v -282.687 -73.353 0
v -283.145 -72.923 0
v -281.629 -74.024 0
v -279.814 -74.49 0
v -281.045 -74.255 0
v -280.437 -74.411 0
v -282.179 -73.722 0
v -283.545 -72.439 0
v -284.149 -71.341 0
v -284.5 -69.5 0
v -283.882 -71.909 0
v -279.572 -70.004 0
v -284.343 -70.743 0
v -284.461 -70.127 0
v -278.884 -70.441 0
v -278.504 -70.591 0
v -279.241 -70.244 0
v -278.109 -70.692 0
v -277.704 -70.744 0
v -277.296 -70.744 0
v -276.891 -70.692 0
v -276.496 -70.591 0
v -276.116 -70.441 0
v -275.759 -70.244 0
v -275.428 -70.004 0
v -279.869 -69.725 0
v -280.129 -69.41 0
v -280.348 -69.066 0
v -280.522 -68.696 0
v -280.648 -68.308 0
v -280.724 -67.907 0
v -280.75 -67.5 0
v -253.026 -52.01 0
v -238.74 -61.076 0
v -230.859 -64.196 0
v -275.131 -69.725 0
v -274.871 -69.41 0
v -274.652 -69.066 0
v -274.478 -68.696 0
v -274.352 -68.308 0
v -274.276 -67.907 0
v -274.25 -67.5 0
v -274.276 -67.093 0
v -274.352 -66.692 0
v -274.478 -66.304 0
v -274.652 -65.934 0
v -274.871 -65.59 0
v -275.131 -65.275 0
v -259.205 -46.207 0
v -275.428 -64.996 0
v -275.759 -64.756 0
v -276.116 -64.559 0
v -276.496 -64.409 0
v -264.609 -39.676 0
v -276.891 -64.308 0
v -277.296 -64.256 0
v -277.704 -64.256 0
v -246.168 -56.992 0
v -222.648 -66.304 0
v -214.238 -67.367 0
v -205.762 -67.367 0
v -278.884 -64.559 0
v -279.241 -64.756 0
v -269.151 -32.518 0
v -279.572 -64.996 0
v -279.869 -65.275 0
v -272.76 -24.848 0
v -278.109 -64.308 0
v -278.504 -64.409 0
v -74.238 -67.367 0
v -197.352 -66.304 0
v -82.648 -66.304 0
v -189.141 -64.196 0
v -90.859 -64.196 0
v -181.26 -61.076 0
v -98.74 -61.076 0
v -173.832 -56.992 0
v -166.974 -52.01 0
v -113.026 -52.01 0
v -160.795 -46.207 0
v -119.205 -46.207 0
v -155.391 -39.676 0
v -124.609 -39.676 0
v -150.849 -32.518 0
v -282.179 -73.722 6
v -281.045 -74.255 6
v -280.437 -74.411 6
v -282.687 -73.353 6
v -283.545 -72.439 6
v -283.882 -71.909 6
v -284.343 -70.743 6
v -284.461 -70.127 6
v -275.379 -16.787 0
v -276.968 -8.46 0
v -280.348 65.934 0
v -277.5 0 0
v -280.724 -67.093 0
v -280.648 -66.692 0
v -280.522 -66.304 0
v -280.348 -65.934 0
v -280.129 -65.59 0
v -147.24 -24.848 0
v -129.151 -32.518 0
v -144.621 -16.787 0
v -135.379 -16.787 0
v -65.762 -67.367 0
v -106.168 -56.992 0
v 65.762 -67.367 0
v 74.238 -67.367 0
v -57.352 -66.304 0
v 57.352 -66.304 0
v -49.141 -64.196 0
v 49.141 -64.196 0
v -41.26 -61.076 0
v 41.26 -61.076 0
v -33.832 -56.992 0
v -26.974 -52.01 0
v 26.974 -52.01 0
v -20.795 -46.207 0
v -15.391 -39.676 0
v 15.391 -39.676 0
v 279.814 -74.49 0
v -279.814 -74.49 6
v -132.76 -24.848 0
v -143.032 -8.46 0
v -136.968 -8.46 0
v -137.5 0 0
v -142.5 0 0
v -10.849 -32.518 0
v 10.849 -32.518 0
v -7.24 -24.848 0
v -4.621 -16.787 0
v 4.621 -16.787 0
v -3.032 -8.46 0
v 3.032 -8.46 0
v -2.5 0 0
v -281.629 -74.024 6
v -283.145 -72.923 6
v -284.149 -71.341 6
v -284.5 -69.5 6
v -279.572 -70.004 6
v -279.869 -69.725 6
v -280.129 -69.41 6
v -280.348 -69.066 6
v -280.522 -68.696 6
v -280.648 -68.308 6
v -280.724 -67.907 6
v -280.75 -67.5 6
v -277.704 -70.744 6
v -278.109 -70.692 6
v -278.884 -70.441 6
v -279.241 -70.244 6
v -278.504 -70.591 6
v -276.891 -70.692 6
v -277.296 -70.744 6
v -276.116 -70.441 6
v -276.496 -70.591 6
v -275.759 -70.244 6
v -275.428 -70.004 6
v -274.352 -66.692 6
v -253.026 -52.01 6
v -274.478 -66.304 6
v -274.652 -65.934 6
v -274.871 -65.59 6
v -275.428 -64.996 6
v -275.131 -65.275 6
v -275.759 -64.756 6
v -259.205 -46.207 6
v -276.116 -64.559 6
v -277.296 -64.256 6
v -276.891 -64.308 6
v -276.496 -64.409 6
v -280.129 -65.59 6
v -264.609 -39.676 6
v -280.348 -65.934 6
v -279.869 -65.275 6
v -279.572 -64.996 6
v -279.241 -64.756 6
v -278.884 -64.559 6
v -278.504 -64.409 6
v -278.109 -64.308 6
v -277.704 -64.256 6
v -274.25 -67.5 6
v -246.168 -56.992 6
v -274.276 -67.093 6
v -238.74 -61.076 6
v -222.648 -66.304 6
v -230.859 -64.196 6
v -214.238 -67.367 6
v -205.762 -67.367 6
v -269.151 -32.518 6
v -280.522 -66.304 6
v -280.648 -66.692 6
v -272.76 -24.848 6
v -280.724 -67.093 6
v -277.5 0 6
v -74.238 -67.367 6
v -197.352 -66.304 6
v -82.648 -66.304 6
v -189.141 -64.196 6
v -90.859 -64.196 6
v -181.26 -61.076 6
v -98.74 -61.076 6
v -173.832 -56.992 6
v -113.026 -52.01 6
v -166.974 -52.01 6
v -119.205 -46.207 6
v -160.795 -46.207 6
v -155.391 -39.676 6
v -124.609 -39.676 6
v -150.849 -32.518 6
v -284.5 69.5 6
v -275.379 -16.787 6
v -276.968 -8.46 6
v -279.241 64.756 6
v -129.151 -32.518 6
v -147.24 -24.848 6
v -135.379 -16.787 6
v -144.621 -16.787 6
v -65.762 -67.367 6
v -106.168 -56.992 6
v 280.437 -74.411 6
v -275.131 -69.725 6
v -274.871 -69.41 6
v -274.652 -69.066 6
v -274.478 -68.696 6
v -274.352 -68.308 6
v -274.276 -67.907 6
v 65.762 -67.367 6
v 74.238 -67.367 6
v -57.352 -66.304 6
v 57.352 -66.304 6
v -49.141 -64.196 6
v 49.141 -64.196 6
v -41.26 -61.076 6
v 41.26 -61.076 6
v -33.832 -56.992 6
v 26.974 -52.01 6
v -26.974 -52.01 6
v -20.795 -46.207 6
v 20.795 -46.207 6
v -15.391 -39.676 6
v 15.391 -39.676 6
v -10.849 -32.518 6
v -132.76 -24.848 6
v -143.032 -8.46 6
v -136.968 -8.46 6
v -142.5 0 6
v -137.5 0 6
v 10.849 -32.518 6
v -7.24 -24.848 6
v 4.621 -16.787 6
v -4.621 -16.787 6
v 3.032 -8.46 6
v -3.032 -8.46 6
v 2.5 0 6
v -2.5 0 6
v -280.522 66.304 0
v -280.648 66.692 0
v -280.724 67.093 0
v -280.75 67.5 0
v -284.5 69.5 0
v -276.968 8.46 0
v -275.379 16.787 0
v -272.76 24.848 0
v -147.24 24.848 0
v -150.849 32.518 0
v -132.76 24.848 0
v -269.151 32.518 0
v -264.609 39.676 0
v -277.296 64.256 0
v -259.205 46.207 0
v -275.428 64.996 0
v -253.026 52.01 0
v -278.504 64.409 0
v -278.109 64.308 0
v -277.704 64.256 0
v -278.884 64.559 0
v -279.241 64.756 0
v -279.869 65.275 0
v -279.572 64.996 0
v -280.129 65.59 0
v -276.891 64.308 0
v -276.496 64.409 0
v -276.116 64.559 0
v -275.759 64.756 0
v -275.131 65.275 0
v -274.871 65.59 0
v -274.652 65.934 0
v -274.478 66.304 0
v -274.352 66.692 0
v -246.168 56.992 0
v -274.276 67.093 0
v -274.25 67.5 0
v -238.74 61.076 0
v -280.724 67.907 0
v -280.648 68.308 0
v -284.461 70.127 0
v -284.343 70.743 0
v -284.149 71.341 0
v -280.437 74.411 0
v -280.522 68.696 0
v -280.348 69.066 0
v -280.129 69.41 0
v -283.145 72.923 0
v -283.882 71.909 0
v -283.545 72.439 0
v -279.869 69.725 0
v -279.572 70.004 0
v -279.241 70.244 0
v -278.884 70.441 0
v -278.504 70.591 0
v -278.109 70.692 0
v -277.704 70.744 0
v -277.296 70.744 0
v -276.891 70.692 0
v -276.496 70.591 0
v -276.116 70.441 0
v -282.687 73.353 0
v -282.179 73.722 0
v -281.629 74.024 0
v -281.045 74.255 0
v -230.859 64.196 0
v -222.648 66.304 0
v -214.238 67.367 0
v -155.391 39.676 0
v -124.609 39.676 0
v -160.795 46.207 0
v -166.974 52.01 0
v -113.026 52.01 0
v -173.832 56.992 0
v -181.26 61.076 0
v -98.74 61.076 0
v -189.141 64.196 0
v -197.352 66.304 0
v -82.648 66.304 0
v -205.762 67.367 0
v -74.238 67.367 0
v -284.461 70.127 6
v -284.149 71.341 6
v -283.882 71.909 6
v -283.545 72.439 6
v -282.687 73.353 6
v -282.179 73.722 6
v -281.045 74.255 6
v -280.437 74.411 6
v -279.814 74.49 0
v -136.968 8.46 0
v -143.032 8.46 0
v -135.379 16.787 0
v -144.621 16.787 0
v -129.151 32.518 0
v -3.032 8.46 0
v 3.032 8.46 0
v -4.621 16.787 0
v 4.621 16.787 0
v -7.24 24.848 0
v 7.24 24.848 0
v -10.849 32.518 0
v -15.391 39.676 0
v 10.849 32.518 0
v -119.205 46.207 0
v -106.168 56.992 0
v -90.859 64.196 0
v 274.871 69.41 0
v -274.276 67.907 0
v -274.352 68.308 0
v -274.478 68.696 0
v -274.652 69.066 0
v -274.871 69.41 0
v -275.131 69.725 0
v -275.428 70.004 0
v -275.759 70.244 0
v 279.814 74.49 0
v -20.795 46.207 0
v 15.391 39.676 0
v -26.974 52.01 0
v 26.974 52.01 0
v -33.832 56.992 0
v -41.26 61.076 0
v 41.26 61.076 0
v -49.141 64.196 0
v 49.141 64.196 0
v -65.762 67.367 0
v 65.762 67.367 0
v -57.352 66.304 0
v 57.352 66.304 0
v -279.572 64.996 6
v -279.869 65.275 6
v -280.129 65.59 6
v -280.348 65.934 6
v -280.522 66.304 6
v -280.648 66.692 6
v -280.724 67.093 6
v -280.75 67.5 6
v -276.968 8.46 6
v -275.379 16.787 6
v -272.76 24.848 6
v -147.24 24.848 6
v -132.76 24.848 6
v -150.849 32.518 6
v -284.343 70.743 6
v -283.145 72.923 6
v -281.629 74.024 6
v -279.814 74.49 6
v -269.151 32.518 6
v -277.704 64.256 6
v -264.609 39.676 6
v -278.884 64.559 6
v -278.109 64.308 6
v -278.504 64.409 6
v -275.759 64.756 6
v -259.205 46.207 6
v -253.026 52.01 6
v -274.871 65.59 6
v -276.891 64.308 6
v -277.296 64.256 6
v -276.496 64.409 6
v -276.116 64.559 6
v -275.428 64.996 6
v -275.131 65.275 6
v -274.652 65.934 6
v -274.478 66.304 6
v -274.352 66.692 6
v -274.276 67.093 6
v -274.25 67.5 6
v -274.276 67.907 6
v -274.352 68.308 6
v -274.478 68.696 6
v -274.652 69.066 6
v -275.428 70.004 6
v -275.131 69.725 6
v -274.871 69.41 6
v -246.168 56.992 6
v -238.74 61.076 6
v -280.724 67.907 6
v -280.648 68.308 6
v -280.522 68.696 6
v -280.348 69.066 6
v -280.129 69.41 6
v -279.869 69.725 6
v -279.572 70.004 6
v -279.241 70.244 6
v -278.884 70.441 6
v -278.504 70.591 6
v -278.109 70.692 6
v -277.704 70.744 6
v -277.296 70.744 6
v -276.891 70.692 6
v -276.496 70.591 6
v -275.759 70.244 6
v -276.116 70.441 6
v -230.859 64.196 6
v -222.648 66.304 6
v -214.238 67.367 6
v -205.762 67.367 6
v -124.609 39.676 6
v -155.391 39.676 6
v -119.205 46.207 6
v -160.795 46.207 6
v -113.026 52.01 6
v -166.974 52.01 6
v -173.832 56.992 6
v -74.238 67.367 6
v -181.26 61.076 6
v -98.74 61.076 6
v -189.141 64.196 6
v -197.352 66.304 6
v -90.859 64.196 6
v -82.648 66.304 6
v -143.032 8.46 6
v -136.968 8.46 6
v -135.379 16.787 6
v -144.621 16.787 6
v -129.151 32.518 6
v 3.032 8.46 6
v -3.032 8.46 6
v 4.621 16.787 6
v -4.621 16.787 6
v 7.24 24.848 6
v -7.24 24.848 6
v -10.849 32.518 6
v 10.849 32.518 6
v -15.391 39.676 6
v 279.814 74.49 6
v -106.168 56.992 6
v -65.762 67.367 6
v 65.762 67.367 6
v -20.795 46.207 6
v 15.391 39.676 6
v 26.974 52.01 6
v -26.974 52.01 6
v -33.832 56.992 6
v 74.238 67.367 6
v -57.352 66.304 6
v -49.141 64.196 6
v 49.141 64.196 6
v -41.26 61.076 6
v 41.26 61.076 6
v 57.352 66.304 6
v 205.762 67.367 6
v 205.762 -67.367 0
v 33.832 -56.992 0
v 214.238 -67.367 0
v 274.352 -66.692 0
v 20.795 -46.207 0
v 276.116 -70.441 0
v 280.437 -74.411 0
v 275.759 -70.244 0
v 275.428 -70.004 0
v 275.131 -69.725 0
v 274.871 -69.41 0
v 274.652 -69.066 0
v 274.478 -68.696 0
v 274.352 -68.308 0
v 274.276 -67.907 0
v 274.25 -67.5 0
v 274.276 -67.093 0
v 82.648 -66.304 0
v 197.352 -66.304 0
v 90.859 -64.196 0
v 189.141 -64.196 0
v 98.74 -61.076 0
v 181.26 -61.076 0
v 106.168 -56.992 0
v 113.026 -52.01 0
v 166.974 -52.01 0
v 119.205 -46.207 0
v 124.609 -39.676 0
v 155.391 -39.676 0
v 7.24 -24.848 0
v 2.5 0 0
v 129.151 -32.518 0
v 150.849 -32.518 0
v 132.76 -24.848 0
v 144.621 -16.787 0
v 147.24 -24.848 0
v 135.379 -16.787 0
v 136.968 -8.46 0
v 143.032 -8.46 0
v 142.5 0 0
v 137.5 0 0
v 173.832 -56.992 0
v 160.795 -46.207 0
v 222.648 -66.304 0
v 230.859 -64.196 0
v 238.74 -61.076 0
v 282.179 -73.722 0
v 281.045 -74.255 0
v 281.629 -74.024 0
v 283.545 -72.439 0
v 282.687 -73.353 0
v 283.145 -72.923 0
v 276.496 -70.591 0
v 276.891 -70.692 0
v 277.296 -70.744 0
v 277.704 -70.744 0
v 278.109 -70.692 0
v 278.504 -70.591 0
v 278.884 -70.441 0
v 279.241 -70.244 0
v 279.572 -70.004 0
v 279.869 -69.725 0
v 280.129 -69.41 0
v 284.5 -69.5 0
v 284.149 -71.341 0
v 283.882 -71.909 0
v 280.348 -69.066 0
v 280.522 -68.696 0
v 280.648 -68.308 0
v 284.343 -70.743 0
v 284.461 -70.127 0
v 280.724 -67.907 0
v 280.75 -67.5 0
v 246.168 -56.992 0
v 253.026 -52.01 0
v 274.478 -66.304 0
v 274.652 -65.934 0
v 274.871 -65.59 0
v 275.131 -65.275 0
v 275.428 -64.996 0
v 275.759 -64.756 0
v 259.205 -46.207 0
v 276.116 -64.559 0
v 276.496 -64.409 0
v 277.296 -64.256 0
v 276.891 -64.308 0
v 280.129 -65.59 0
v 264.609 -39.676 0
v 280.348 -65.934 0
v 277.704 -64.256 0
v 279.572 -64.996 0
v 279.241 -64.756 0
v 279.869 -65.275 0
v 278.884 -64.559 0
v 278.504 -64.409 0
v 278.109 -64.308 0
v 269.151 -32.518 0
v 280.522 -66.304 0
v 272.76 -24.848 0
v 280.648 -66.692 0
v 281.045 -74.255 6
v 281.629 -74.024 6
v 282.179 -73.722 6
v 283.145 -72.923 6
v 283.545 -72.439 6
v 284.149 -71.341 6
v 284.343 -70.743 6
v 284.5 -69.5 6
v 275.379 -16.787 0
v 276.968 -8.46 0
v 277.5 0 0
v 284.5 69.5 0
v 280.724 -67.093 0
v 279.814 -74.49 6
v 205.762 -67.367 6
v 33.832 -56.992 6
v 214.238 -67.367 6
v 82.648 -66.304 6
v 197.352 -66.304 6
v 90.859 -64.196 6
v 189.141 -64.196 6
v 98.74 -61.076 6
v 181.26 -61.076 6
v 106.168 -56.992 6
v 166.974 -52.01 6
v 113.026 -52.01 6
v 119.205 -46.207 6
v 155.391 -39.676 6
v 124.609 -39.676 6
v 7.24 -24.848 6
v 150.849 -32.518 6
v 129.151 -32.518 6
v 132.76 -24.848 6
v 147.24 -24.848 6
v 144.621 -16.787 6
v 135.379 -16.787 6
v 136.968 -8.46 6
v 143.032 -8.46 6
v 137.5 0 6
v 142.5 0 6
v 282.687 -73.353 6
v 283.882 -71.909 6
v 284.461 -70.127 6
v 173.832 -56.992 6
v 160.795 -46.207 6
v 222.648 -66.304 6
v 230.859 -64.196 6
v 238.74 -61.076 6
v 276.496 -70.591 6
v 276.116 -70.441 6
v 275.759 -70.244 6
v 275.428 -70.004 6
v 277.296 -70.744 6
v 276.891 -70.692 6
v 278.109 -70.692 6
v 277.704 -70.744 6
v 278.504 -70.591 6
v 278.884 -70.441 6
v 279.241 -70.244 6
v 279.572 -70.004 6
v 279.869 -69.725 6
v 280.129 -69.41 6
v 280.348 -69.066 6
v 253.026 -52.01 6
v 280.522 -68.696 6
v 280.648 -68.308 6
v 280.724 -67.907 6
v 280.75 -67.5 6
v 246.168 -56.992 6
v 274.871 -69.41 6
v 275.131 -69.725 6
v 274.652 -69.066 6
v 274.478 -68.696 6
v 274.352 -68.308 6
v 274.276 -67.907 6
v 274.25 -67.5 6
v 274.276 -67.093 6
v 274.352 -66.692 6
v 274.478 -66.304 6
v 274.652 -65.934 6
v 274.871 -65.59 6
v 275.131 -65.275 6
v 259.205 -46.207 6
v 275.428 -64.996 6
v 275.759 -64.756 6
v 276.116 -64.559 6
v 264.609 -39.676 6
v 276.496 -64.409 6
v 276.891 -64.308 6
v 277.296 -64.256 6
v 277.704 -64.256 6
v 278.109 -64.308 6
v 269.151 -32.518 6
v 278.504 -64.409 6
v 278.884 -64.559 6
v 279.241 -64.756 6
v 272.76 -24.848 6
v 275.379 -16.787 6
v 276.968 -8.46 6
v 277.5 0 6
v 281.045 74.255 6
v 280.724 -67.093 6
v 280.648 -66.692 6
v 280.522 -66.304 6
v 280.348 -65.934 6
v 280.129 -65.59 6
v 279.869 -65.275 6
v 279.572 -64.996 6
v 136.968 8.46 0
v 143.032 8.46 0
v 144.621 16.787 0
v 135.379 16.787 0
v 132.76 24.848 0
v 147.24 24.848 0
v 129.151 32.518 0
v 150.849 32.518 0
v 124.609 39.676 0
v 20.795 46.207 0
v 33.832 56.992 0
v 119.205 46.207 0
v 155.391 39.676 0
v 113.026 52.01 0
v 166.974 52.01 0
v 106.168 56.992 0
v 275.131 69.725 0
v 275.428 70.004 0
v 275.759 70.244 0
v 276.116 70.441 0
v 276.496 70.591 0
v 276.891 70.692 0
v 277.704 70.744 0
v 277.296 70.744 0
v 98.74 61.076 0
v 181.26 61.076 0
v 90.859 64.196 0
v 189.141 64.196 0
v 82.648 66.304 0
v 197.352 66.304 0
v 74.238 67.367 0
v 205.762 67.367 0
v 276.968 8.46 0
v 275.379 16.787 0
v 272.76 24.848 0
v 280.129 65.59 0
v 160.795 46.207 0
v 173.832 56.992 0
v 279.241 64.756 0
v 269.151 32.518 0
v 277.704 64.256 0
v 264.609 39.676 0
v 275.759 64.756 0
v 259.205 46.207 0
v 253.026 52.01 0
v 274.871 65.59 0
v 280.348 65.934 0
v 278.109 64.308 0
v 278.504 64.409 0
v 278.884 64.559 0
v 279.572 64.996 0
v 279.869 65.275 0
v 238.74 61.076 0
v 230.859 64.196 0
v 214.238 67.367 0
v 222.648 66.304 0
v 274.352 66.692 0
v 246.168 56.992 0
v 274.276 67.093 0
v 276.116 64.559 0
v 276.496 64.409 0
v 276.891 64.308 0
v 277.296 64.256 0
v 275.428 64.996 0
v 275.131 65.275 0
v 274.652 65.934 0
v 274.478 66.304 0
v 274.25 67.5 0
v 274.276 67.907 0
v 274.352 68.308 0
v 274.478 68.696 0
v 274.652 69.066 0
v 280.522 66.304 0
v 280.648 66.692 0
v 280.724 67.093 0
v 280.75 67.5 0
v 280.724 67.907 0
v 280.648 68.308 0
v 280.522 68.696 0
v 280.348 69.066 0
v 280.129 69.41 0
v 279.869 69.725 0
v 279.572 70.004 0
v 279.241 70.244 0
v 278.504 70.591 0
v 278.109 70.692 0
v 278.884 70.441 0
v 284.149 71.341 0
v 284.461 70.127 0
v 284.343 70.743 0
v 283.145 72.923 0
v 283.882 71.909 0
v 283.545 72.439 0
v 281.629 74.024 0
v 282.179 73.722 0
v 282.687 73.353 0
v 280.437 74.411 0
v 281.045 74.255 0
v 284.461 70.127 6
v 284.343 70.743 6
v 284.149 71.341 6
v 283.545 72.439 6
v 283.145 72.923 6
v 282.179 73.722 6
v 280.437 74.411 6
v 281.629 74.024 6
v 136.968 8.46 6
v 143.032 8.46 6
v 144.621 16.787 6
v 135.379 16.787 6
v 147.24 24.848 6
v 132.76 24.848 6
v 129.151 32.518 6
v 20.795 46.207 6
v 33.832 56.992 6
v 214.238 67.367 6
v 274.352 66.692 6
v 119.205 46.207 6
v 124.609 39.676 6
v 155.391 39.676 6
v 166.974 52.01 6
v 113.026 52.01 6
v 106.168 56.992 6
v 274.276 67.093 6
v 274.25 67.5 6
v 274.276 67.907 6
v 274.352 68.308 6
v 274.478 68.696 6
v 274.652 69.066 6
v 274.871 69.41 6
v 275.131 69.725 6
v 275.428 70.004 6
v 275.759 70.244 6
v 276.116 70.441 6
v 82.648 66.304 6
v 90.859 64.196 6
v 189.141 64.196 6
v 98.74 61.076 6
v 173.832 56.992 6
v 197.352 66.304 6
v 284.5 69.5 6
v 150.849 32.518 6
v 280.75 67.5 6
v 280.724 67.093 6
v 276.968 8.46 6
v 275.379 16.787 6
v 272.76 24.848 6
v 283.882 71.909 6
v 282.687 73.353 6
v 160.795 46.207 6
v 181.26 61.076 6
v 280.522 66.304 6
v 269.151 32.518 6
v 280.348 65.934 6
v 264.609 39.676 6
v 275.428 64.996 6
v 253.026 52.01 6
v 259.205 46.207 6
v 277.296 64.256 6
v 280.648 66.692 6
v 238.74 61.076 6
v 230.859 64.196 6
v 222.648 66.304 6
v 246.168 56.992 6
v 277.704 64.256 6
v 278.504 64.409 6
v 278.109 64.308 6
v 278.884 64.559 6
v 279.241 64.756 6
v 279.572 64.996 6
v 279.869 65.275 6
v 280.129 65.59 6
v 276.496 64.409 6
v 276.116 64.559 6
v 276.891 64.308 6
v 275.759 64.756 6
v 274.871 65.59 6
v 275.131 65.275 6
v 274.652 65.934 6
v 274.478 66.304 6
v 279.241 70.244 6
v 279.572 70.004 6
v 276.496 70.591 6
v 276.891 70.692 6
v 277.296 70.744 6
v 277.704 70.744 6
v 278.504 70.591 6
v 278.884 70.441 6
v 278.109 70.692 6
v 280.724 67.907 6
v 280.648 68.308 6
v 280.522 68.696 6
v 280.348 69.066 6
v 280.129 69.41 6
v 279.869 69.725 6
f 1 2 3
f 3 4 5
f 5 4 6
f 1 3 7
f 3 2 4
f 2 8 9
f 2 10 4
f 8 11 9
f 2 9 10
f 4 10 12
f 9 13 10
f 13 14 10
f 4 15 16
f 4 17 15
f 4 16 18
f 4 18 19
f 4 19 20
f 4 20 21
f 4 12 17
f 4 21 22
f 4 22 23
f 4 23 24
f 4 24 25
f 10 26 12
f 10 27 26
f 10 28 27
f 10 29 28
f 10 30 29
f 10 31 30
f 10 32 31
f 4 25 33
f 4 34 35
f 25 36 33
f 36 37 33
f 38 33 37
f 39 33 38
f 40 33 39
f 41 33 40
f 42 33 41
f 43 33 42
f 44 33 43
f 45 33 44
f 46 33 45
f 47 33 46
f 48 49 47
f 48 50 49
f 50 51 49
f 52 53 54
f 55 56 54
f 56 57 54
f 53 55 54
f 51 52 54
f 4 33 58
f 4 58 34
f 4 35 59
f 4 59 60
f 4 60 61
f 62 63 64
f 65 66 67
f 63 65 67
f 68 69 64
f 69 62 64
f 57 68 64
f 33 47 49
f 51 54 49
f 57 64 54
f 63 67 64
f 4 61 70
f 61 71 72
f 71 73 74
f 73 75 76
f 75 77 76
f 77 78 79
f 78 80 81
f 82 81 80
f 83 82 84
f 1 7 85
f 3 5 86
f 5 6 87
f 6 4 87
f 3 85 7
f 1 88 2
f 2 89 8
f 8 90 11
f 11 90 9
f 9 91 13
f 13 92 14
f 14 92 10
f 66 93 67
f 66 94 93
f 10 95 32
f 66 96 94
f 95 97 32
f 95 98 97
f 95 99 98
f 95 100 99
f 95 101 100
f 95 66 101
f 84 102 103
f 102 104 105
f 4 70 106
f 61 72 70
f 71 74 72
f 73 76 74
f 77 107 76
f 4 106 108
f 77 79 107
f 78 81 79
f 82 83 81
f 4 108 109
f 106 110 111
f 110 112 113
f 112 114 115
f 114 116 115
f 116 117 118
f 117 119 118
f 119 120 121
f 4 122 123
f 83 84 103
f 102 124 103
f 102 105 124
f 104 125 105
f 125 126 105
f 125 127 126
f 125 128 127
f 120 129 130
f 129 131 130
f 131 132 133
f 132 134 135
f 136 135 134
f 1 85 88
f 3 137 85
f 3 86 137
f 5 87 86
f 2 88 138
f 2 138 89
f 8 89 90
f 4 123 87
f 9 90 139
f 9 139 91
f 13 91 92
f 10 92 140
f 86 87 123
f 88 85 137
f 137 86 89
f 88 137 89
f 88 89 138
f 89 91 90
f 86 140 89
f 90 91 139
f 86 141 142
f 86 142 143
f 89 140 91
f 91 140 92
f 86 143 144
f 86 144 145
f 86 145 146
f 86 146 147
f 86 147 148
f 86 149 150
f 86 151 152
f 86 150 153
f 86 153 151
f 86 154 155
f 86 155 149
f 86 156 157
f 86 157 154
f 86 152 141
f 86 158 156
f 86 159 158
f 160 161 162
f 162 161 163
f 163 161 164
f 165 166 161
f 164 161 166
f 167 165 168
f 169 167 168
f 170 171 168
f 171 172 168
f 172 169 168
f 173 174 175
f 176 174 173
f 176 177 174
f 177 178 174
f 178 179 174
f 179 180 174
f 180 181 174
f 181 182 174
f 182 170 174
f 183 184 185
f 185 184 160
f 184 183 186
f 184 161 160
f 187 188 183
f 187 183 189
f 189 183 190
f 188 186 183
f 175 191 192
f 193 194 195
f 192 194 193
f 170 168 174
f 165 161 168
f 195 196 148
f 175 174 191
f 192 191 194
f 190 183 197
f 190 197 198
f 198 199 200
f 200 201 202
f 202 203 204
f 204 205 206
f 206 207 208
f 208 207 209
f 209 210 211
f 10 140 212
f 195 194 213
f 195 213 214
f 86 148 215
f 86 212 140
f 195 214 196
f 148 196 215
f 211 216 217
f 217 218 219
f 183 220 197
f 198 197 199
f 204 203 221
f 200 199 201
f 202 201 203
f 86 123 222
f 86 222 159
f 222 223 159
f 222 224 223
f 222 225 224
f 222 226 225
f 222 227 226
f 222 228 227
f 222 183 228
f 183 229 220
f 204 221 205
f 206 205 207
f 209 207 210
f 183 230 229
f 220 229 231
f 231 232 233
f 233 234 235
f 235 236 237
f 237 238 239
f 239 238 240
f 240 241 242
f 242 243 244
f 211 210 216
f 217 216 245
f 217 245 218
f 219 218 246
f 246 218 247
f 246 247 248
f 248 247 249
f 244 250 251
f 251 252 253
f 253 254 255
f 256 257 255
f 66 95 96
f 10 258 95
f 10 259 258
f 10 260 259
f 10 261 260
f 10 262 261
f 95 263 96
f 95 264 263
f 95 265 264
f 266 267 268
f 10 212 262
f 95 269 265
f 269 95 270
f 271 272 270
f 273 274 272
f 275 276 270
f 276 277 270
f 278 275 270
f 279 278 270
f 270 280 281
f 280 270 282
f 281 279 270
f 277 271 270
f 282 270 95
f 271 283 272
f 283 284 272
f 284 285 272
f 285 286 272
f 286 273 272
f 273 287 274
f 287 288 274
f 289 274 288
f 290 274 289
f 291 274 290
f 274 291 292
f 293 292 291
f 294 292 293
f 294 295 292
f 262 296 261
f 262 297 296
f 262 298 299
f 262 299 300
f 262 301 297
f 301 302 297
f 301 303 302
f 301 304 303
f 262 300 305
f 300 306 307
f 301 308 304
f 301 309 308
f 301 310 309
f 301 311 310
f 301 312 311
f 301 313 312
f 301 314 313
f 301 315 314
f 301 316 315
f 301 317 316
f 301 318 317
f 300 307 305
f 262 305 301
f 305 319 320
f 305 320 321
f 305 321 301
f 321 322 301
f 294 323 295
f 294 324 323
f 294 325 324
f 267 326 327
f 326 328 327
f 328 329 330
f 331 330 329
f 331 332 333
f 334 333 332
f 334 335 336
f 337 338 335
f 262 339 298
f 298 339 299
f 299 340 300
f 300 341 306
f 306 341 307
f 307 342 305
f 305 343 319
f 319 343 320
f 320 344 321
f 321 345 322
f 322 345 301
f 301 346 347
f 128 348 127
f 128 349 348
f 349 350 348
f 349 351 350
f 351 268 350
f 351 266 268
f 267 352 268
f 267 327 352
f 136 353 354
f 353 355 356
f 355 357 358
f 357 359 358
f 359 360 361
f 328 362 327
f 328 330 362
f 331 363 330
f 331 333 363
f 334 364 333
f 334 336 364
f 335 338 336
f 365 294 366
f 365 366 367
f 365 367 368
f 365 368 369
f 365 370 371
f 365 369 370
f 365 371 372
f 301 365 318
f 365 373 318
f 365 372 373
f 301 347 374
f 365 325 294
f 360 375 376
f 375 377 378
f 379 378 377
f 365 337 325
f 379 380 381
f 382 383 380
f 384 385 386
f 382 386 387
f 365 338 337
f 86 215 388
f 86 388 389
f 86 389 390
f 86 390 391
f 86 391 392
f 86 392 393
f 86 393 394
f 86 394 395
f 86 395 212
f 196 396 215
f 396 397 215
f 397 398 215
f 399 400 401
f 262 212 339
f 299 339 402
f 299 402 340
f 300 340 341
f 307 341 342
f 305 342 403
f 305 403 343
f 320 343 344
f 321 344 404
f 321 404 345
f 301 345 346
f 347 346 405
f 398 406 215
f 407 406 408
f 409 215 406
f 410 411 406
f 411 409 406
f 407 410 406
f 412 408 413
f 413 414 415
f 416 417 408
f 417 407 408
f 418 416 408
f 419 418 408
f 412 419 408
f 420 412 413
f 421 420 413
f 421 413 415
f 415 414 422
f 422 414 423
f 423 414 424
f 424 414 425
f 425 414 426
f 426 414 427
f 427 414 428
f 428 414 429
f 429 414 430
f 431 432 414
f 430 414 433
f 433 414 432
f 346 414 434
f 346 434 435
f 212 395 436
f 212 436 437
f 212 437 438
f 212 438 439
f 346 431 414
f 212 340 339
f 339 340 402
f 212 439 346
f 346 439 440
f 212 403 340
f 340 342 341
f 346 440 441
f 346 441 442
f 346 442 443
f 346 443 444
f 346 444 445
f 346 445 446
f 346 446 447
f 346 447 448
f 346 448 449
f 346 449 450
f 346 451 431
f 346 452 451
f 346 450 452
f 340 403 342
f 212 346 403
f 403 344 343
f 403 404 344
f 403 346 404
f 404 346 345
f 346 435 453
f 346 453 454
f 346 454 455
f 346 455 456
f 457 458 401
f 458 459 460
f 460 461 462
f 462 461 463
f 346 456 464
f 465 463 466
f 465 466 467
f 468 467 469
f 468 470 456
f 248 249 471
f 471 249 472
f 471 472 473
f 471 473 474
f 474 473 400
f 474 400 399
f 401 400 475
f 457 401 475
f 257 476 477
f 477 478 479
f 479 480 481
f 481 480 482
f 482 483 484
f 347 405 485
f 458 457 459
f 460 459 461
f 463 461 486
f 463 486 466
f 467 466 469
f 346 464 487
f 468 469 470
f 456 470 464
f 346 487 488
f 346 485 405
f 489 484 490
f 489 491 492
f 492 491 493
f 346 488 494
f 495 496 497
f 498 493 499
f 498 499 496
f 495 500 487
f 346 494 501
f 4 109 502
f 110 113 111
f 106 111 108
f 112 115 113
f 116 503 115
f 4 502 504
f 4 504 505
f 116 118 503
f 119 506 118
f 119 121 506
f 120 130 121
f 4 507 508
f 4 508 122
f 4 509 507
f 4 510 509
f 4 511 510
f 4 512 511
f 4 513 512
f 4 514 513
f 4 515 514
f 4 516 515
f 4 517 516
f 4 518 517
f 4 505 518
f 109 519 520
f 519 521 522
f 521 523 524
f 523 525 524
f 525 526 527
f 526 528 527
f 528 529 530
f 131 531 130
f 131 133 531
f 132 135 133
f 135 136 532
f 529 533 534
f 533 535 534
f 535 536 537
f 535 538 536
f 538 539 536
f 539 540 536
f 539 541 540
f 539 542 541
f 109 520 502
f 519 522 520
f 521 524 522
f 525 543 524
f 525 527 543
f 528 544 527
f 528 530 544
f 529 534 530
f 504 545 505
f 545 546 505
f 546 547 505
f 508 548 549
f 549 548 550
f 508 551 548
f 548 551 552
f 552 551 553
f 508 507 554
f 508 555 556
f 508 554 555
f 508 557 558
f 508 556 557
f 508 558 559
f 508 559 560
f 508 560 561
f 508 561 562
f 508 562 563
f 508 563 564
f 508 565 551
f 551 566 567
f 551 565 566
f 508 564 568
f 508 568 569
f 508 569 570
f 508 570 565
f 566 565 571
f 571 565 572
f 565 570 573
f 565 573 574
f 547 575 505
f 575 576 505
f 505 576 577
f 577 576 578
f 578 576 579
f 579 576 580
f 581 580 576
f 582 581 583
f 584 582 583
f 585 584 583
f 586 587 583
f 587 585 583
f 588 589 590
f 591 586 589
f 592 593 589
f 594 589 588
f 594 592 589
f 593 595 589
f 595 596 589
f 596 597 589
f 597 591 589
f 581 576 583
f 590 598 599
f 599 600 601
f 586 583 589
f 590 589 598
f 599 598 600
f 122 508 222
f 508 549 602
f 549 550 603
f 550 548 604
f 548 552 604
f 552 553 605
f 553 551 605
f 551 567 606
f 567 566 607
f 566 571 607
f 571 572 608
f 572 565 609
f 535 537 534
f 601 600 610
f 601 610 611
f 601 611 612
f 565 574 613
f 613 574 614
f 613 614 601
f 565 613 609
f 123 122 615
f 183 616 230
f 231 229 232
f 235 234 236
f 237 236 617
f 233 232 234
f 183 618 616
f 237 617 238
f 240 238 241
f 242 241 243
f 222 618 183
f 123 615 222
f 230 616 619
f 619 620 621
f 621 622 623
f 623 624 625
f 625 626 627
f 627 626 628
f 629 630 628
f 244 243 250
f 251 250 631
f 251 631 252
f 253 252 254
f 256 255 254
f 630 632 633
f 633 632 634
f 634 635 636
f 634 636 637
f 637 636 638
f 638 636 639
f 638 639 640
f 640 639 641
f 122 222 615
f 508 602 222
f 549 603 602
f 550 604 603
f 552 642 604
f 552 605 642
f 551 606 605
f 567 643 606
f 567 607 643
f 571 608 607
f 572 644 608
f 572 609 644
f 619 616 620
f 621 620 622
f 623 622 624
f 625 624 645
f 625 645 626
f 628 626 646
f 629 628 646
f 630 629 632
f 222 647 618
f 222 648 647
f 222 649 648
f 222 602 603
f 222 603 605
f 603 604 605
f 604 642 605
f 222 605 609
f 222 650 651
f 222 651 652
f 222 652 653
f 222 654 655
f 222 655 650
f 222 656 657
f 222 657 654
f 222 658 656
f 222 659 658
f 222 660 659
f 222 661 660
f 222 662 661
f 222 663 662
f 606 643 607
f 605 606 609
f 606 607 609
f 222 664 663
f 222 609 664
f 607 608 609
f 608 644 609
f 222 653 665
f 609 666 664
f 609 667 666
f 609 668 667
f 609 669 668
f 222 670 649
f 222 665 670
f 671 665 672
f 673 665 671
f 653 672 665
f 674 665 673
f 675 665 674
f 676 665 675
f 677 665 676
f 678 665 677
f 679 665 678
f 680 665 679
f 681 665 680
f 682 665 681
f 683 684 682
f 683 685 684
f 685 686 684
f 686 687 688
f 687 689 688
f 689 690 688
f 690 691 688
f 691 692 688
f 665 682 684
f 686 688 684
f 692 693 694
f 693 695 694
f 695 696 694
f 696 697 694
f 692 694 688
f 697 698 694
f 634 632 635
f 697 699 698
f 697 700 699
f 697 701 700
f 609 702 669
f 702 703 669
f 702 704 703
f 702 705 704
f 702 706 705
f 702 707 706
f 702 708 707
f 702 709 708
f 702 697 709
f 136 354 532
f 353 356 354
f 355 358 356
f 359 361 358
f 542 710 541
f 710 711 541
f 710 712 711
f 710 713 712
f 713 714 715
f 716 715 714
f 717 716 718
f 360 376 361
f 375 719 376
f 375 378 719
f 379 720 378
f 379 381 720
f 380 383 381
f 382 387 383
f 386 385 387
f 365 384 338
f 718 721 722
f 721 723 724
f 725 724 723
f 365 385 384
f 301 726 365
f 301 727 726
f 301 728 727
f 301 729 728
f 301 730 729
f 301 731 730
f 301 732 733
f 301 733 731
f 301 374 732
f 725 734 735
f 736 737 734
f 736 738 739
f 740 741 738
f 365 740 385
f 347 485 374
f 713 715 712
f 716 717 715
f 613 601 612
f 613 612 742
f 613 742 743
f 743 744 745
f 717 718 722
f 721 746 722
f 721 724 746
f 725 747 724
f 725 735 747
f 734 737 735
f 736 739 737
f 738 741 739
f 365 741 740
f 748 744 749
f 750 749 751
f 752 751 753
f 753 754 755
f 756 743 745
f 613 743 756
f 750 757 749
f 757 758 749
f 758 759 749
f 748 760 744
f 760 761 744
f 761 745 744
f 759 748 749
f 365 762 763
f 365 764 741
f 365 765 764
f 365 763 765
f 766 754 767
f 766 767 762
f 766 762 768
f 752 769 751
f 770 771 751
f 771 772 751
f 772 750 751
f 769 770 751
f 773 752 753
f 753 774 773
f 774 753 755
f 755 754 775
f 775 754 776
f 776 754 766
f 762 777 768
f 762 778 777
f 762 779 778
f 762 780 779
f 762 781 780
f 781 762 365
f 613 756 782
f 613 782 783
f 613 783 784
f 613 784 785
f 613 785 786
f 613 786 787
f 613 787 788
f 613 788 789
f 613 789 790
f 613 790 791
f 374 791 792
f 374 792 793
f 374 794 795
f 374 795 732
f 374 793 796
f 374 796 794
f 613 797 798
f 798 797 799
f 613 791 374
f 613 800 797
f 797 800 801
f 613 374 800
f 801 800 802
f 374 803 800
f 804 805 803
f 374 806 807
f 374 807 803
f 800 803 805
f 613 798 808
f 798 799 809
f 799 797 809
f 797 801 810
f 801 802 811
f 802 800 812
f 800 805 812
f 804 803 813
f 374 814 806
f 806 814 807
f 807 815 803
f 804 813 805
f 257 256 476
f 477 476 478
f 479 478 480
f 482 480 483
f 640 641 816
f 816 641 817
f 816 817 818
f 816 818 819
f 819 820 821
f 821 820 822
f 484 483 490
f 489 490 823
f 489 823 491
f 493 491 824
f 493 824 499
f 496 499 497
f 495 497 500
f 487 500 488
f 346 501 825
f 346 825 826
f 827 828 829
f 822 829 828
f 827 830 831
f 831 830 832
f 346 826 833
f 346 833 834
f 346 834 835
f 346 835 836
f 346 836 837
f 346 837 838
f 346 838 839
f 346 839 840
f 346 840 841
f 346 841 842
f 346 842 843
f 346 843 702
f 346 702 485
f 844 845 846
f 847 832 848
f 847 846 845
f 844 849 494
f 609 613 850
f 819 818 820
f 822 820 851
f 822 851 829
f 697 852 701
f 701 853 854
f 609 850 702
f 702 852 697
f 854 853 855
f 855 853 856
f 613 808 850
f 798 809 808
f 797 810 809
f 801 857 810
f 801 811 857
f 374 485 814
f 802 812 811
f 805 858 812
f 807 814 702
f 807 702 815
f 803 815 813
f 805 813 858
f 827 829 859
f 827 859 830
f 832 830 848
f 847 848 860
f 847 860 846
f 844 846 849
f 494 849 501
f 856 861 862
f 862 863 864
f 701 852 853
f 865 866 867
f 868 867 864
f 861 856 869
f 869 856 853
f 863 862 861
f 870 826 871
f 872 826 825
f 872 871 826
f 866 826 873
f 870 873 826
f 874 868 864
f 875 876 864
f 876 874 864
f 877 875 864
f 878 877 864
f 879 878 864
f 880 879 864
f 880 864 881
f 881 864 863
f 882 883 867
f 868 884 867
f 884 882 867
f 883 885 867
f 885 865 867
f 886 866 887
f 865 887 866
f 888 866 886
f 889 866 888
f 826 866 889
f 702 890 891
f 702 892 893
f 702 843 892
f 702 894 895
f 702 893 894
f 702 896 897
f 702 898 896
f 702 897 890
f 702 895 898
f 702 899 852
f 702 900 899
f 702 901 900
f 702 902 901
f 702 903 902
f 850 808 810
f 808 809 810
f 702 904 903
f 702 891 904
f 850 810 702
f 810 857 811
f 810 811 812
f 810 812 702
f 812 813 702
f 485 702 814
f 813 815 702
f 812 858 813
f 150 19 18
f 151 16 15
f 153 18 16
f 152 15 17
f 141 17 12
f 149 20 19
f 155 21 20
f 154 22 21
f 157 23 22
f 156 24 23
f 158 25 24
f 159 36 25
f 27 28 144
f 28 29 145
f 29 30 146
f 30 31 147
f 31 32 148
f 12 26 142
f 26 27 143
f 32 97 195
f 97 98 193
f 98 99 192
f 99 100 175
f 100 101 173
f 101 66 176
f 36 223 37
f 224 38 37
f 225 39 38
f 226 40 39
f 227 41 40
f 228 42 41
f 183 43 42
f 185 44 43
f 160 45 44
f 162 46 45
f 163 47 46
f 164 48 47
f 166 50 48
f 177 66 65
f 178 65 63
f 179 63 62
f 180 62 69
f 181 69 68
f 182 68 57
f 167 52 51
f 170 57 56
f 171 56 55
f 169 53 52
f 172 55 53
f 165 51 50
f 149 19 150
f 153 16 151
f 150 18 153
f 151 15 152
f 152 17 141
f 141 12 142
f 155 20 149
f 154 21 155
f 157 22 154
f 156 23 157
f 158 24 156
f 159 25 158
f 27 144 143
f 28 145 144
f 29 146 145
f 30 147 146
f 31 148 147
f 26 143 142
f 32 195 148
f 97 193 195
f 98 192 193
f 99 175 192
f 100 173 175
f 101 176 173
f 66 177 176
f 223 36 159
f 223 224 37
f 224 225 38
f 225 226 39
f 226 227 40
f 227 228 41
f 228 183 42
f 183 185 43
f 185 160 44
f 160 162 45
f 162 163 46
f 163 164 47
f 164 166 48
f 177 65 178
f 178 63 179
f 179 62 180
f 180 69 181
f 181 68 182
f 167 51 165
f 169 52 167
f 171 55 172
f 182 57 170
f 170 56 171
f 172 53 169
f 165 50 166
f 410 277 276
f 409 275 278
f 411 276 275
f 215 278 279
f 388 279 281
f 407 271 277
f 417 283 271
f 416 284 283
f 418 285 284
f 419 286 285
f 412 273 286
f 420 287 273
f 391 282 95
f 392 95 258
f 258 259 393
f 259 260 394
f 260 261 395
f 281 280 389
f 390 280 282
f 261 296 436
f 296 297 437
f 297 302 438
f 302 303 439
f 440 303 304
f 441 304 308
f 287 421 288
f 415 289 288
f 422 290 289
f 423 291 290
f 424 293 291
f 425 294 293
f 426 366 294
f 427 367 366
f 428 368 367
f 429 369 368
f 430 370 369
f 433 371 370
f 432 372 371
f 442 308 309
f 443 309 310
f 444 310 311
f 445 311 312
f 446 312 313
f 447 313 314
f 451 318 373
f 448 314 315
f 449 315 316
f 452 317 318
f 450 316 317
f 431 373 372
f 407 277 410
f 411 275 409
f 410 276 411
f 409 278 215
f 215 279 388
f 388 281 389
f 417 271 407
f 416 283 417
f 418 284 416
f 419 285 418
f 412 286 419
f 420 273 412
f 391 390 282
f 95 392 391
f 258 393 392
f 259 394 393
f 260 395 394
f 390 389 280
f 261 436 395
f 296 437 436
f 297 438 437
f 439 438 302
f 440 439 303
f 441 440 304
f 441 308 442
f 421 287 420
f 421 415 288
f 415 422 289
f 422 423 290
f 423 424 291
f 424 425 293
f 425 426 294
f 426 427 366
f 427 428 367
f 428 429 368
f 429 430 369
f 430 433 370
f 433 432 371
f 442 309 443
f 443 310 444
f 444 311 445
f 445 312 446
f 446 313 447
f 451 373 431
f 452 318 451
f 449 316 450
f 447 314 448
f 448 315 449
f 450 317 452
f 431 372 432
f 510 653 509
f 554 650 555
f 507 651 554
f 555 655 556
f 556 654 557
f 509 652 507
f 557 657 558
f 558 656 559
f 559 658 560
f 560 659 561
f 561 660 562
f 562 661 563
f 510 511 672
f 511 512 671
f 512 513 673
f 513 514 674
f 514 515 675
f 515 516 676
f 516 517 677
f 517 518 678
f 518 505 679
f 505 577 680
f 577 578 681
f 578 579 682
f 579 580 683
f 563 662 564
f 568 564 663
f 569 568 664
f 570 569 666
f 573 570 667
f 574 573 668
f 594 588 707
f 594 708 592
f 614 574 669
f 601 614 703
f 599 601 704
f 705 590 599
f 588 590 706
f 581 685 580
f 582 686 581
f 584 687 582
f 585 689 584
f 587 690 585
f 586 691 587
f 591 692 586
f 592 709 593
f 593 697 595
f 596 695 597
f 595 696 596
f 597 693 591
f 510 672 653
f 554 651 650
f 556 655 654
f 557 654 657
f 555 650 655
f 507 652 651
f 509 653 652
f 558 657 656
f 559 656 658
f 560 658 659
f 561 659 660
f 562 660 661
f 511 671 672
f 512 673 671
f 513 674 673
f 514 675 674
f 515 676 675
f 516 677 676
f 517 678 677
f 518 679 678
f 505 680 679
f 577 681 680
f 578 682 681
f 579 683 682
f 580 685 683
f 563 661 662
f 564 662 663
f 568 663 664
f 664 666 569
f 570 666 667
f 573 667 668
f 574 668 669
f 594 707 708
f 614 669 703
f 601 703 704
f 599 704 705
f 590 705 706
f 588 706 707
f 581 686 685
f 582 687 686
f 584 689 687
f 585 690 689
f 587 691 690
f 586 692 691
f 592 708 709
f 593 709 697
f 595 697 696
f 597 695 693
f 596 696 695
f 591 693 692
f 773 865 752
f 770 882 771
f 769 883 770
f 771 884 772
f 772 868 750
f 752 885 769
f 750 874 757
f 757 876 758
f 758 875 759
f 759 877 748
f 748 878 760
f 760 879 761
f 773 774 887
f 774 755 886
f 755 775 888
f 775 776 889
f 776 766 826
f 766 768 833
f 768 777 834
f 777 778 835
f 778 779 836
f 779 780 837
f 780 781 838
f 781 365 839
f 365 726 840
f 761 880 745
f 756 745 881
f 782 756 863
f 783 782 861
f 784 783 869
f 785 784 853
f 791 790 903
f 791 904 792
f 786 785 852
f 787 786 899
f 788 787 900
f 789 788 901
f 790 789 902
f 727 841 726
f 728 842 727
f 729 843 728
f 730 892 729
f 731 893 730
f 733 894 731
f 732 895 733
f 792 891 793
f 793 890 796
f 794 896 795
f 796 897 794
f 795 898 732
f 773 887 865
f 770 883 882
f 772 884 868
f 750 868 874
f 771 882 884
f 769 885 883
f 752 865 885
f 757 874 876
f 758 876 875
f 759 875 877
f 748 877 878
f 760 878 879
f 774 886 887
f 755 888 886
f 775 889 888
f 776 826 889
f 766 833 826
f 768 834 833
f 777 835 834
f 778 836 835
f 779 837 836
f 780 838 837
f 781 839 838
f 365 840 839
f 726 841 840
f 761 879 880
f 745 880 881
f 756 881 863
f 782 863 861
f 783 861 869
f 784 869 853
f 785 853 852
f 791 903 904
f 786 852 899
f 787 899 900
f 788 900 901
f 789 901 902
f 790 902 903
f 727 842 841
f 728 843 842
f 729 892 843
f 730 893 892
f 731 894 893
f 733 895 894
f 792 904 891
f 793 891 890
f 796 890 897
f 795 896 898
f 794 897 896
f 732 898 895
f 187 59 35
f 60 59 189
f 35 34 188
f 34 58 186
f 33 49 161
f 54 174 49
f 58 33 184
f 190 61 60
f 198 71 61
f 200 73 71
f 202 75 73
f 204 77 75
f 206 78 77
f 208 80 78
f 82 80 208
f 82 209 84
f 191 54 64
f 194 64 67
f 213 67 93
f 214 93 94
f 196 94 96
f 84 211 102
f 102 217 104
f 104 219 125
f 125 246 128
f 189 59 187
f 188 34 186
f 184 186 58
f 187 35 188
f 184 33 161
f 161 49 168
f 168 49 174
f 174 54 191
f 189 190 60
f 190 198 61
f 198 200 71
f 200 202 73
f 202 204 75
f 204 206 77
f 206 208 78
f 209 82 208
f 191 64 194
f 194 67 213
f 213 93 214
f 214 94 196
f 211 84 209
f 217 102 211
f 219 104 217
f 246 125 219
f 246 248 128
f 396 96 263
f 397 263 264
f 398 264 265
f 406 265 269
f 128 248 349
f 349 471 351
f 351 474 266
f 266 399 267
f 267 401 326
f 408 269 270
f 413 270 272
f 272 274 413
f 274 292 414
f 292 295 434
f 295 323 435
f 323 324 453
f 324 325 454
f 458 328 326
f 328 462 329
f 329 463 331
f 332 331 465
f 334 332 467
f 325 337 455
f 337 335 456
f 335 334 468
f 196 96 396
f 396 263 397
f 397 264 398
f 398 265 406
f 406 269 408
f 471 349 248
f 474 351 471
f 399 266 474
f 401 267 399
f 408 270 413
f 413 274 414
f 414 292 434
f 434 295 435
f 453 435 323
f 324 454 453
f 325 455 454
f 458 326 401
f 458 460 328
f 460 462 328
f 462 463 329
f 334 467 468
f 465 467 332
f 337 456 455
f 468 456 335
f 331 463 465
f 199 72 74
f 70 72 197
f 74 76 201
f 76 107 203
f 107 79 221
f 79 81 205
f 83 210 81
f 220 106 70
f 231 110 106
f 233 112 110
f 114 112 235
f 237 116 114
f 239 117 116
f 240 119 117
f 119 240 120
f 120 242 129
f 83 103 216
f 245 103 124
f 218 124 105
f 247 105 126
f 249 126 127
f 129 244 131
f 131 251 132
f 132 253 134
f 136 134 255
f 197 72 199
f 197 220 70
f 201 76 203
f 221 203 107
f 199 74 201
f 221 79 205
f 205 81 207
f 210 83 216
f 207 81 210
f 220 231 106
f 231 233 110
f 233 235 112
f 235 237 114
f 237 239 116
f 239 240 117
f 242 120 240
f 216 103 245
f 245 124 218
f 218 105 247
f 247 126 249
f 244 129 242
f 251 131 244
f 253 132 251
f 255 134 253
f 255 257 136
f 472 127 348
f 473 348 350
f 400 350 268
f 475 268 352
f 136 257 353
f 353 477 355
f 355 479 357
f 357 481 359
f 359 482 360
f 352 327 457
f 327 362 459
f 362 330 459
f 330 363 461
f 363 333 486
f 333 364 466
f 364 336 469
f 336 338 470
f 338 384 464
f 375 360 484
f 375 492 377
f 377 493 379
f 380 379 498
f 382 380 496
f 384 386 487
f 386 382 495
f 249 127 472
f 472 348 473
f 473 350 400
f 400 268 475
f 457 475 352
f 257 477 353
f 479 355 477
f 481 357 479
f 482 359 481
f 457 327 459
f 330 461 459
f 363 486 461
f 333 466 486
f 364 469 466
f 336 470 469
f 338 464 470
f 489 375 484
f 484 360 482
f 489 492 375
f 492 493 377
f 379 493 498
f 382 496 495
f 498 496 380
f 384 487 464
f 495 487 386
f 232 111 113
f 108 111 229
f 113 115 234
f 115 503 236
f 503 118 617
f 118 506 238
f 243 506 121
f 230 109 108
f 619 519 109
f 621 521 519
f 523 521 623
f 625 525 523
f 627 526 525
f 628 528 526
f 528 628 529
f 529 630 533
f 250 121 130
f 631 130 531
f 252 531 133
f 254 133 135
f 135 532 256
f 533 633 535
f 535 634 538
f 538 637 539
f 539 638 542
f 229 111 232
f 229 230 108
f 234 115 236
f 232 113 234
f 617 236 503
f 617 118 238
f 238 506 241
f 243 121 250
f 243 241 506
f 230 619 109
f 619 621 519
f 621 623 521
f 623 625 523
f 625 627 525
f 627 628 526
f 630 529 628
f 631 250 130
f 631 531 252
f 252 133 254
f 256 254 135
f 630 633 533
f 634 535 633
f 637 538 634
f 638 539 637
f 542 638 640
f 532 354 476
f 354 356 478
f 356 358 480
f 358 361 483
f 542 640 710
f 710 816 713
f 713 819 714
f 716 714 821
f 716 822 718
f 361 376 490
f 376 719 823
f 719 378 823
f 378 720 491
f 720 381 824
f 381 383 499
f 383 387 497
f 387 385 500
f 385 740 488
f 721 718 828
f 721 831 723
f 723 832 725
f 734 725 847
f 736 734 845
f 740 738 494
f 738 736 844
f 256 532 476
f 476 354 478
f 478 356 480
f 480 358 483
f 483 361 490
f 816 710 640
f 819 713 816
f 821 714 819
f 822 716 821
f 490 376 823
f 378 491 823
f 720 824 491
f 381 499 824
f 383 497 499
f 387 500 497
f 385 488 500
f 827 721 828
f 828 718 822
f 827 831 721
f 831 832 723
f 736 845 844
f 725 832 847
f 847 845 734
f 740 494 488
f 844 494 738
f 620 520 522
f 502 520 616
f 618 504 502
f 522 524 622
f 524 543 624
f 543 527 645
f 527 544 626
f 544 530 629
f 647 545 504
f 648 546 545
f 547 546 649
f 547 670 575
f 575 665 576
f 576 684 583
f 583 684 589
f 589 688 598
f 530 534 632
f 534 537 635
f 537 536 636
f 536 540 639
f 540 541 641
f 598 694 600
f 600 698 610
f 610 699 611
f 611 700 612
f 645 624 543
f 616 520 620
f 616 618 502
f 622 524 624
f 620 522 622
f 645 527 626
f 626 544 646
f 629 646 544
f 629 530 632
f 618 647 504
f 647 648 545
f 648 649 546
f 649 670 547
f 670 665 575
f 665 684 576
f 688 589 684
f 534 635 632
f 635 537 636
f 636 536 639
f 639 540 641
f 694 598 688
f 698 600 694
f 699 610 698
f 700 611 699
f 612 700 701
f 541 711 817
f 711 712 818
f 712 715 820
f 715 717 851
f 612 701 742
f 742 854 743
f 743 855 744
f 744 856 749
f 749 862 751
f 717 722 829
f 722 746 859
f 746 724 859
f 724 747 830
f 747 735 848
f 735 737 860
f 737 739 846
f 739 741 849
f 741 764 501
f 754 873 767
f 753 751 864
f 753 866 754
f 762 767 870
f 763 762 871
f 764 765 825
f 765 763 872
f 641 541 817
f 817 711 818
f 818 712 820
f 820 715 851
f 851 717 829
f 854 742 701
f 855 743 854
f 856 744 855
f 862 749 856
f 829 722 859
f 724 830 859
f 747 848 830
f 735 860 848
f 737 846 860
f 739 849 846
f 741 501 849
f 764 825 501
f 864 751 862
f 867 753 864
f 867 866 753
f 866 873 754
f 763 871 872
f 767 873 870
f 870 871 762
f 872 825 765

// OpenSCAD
$fn = 50;

difference() {
	union() {
		hull() {
			translate(v = [-279.5, 69.5, 0]) {
				cylinder(h = 6, r = 5);
			}
			translate(v = [279.5, 69.5, 0]) {
				cylinder(h = 6, r = 5);
			}
			translate(v = [-279.5, -69.5, 0]) {
				cylinder(h = 6, r = 5);
			}
			translate(v = [279.5, -69.5, 0]) {
				cylinder(h = 6, r = 5);
			}
		}
	}
	union() {
		translate(v = [-277.5, -67.5, -100.0]) {
			cylinder(h = 200, r = 3.25);
		}
		translate(v = [-277.5, 67.5, -100.0]) {
			cylinder(h = 200, r = 3.25);
		}
		translate(v = [277.5, -67.5, -100.0]) {
			cylinder(h = 200, r = 3.25);
		}
		translate(v = [277.5, 67.5, -100.0]) {
			cylinder(h = 200, r = 3.25);
		}
		translate(v = [-277.5, -67.5, -100.0]) {
			cylinder(h = 200, r = 1.8);
		}
		translate(v = [-277.5, 67.5, -100.0]) {
			cylinder(h = 200, r = 1.8);
		}
		translate(v = [277.5, -67.5, -100.0]) {
			cylinder(h = 200, r = 1.8);
		}
		translate(v = [277.5, 67.5, -100.0]) {
			cylinder(h = 200, r = 1.8);
		}
		translate(v = [-210.0, 0, 0.0]) {
			cylinder(h = 6, r = 67.5);
		}
		translate(v = [-70.0, 0, 0.0]) {
			cylinder(h = 6, r = 67.5);
		}
		translate(v = [70.0, 0, 0.0]) {
			cylinder(h = 6, r = 67.5);
		}
		translate(v = [210.0, 0, 0.0]) {
			cylinder(h = 6, r = 67.5);
		}
	}
}
